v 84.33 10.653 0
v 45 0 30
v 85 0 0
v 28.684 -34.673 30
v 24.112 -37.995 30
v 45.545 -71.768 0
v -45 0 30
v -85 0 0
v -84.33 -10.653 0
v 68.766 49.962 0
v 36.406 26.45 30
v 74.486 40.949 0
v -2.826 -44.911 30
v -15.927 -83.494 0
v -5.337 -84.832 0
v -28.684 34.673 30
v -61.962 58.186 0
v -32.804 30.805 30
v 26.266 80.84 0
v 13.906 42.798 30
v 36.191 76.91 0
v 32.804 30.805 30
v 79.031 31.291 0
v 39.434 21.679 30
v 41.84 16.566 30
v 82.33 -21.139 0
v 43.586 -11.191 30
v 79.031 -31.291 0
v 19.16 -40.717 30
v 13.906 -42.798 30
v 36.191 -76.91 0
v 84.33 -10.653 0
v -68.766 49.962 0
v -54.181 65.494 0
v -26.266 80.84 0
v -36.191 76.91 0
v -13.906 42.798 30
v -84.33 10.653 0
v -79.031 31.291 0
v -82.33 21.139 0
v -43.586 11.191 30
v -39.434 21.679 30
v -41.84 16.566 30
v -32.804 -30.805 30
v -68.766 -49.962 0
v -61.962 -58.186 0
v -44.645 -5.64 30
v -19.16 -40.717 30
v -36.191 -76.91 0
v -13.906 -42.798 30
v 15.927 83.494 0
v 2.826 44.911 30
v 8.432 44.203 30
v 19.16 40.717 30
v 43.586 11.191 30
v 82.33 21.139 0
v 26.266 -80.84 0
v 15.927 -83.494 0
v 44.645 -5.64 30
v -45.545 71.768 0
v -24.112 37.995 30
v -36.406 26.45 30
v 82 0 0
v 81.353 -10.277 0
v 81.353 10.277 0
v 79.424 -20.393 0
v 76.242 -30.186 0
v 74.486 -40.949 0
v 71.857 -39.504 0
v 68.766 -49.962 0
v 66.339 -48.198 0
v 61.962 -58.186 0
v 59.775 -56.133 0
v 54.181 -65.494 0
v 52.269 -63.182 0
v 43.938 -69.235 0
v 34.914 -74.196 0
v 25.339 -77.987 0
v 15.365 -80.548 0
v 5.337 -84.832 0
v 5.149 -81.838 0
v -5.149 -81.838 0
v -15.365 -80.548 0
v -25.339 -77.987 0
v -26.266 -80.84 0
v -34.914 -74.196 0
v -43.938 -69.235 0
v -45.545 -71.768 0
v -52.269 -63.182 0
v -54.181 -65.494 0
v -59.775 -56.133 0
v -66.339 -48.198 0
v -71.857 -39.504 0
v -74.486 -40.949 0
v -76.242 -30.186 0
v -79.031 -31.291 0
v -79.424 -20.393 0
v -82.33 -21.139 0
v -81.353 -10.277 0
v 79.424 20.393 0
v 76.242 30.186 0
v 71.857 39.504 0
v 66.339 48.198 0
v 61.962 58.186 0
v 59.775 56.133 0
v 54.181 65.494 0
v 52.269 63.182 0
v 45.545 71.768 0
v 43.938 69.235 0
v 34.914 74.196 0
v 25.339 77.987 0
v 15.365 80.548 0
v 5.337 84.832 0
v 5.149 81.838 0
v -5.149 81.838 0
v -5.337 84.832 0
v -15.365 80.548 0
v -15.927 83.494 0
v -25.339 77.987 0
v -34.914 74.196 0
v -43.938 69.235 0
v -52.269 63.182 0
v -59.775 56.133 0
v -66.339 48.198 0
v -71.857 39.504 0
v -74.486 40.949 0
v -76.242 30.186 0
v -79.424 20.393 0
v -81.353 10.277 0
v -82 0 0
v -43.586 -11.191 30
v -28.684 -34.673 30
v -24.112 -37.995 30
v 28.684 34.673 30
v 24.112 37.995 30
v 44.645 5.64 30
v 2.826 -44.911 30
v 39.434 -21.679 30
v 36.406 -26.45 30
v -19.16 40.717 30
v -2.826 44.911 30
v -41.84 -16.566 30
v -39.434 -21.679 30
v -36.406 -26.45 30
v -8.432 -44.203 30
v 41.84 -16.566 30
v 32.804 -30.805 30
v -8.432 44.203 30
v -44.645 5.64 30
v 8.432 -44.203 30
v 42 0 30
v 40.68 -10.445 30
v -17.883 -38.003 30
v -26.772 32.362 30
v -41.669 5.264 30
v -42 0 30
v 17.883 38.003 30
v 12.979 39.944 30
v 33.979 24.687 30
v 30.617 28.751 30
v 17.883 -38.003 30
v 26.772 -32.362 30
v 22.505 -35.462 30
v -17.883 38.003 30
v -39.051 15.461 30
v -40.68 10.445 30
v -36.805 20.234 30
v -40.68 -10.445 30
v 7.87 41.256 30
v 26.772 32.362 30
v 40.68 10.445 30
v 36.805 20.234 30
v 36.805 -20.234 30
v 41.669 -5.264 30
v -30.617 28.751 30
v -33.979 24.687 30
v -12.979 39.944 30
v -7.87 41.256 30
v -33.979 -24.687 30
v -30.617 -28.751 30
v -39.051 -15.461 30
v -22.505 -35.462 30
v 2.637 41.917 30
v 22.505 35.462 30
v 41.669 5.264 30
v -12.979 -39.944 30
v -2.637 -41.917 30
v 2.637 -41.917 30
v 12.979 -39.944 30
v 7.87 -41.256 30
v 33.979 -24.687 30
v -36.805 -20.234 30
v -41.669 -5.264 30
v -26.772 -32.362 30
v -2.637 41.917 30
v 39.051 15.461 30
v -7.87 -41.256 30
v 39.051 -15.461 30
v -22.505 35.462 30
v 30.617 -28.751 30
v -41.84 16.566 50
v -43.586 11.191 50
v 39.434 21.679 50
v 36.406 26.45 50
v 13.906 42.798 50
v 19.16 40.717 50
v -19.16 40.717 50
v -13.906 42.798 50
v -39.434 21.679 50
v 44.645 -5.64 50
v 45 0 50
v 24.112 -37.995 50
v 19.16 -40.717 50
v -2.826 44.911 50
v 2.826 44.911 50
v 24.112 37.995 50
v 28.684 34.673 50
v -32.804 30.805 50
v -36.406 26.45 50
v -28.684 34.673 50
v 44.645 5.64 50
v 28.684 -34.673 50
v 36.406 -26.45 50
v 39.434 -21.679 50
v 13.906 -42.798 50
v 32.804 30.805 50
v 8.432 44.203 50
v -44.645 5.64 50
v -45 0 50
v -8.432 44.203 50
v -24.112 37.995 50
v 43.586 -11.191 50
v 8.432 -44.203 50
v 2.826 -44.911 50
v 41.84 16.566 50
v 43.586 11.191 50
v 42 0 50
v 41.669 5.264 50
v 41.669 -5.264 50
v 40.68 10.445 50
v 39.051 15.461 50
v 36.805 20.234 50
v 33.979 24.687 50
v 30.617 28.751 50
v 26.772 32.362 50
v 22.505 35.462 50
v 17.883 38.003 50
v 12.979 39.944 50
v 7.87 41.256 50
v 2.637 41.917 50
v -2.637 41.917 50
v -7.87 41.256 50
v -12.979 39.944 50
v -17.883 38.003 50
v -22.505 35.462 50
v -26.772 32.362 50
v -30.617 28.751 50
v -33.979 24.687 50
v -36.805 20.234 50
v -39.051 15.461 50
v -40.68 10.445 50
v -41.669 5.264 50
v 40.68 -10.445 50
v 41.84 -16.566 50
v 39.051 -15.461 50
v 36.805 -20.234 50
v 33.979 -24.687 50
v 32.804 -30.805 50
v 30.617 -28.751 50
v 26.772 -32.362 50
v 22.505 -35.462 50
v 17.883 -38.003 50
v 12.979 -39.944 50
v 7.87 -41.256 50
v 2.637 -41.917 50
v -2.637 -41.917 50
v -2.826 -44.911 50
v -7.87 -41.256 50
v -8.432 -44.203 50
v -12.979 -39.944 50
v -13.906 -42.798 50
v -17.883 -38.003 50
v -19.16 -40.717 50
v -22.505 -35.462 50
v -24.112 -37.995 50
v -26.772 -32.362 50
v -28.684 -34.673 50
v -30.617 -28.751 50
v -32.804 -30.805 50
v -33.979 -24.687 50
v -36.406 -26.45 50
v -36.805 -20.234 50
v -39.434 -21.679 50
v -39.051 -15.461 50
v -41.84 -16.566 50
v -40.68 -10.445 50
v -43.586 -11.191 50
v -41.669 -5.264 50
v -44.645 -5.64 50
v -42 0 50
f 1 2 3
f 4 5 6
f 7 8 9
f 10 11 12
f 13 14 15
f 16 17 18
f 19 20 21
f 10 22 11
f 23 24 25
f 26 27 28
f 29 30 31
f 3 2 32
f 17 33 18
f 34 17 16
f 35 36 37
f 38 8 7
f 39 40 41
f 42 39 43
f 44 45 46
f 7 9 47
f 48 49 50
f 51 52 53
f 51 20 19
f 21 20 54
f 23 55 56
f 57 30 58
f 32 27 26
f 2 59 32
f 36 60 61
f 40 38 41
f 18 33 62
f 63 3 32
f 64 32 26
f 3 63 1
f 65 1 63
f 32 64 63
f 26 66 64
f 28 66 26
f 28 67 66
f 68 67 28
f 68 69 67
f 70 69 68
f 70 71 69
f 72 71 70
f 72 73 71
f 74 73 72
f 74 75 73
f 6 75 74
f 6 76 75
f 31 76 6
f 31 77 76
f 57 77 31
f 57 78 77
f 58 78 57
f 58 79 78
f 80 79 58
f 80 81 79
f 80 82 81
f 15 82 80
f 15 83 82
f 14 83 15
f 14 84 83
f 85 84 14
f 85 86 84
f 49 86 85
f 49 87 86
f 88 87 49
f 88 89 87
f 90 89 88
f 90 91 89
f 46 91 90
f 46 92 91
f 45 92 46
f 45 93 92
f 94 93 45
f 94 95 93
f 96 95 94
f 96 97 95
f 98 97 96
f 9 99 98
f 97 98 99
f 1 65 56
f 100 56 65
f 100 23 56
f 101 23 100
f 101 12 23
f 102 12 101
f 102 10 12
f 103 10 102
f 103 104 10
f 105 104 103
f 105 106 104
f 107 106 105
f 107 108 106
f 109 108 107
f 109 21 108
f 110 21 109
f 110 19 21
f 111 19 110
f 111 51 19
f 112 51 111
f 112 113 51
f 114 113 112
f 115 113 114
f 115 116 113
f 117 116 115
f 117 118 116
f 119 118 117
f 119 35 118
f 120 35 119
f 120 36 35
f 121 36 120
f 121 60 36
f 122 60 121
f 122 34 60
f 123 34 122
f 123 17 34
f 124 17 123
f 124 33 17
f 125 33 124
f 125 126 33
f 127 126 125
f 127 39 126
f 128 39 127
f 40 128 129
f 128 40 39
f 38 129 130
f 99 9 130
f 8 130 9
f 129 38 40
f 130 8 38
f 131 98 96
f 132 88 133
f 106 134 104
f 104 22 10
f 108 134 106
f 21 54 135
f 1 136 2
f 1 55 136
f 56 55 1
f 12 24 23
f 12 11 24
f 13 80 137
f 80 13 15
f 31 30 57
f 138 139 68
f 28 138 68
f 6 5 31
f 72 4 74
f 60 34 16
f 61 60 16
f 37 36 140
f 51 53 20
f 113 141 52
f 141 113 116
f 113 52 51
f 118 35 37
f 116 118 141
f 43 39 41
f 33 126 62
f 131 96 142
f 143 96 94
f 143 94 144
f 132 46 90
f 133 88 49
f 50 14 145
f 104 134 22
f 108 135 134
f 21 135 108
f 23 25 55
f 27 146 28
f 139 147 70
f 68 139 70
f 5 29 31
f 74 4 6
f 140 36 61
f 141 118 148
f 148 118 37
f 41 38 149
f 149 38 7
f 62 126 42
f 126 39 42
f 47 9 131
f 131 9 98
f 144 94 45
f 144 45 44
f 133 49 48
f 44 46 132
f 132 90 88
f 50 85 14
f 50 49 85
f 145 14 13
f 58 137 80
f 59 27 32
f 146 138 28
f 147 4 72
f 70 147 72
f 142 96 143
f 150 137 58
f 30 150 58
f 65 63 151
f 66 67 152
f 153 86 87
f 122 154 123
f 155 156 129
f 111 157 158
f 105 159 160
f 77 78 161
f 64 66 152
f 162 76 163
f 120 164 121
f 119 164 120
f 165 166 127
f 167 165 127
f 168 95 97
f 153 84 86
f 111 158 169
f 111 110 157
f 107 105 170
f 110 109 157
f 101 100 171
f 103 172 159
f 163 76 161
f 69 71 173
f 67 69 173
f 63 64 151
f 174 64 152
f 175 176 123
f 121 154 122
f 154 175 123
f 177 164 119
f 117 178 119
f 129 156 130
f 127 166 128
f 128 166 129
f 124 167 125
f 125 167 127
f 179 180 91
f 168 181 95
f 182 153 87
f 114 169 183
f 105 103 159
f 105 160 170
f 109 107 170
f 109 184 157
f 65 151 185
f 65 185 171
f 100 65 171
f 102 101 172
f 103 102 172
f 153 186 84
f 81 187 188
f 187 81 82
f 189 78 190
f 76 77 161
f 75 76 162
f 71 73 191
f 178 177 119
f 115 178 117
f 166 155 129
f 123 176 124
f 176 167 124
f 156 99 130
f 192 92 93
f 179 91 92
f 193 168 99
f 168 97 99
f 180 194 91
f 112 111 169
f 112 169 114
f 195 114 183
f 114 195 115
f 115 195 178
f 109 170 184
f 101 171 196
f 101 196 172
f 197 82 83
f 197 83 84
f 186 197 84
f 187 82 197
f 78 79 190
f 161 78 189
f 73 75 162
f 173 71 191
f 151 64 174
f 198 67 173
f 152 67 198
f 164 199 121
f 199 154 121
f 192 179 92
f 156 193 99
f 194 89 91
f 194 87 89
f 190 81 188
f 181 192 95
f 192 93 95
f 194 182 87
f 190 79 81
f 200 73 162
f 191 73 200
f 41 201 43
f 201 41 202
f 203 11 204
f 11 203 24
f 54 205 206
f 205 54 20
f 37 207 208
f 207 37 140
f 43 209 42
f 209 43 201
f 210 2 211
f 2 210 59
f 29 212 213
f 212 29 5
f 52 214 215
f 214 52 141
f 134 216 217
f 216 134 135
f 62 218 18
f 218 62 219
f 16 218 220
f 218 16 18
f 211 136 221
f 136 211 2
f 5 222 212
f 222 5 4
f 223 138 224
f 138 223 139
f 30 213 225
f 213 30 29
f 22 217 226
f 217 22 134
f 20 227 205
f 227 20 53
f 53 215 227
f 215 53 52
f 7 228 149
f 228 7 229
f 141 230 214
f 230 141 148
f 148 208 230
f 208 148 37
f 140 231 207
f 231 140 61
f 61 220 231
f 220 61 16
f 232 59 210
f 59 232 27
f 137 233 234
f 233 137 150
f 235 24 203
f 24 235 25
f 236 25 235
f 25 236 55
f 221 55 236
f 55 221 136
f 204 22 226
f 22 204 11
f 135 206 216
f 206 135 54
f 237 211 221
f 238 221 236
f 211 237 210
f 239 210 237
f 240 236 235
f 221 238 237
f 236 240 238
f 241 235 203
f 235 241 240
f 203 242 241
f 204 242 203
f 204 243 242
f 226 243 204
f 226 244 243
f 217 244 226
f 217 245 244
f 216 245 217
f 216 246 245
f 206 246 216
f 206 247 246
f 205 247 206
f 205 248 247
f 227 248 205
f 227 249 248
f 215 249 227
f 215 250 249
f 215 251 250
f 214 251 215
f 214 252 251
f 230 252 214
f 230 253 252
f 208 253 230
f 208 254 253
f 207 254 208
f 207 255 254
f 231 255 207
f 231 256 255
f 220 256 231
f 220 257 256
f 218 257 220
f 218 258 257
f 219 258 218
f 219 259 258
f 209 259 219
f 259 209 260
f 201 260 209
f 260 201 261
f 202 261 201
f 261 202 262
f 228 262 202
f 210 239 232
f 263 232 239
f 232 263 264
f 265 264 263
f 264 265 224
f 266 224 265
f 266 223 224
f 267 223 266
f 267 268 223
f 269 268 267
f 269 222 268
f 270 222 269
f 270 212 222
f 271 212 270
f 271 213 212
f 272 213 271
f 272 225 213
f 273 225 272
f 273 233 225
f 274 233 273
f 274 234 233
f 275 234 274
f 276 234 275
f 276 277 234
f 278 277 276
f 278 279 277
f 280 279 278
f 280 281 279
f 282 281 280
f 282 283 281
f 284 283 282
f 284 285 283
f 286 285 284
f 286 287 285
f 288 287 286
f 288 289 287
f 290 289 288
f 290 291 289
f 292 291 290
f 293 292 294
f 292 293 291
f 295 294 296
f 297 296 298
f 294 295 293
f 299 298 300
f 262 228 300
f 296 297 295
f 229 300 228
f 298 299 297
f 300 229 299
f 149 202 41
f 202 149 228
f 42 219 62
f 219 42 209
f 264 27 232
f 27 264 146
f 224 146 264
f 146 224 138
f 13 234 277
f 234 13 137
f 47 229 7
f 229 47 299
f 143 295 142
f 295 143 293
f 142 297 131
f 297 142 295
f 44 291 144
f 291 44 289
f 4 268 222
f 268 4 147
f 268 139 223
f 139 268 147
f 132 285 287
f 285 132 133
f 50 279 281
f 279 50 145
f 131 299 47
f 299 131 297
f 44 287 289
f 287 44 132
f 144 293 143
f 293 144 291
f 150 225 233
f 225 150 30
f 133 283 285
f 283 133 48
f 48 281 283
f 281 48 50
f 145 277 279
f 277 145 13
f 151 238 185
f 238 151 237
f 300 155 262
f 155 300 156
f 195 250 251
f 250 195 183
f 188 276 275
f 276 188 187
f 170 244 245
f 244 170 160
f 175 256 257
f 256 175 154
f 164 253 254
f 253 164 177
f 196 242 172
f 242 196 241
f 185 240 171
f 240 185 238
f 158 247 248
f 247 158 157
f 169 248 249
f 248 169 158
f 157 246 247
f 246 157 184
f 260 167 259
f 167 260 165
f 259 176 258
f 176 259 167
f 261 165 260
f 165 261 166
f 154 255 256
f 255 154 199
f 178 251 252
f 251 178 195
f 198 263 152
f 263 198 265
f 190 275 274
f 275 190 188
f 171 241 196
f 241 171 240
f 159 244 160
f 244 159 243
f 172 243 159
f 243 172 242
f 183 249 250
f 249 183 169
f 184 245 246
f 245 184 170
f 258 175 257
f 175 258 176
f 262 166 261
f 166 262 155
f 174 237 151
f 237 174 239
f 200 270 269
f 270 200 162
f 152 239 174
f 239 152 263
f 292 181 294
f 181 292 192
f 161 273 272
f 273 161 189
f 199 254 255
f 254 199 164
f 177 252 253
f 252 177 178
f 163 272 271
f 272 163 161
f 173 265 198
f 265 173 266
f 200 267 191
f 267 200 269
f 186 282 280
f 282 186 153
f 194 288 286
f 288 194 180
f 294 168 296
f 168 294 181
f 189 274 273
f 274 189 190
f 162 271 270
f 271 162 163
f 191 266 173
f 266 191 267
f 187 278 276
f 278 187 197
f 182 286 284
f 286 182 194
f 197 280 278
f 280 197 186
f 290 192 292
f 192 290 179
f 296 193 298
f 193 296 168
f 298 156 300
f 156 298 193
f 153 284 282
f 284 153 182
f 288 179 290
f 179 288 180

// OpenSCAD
$fn = 50;


difference() {
	union() {
		translate(v = [0, 0, 0]) {
			rotate(a = [0, 0, 0]) {
				difference() {
					union() {
						cylinder(h = 30, r1 = 85.0000000000, r2 = 45.0000000000);
					}
					union() {
						cylinder(h = 30, r1 = 82.0000000000, r2 = 42.0000000000);
					}
				}
			}
		}
		translate(v = [0, 0, 30]) {
			rotate(a = [0, 0, 0]) {
				difference() {
					union() {
						cylinder(h = 20, r = 45.0000000000);
					}
					union() {
						cylinder(h = 20, r = 42.0000000000);
					}
				}
			}
		}
	}
	union();
}
